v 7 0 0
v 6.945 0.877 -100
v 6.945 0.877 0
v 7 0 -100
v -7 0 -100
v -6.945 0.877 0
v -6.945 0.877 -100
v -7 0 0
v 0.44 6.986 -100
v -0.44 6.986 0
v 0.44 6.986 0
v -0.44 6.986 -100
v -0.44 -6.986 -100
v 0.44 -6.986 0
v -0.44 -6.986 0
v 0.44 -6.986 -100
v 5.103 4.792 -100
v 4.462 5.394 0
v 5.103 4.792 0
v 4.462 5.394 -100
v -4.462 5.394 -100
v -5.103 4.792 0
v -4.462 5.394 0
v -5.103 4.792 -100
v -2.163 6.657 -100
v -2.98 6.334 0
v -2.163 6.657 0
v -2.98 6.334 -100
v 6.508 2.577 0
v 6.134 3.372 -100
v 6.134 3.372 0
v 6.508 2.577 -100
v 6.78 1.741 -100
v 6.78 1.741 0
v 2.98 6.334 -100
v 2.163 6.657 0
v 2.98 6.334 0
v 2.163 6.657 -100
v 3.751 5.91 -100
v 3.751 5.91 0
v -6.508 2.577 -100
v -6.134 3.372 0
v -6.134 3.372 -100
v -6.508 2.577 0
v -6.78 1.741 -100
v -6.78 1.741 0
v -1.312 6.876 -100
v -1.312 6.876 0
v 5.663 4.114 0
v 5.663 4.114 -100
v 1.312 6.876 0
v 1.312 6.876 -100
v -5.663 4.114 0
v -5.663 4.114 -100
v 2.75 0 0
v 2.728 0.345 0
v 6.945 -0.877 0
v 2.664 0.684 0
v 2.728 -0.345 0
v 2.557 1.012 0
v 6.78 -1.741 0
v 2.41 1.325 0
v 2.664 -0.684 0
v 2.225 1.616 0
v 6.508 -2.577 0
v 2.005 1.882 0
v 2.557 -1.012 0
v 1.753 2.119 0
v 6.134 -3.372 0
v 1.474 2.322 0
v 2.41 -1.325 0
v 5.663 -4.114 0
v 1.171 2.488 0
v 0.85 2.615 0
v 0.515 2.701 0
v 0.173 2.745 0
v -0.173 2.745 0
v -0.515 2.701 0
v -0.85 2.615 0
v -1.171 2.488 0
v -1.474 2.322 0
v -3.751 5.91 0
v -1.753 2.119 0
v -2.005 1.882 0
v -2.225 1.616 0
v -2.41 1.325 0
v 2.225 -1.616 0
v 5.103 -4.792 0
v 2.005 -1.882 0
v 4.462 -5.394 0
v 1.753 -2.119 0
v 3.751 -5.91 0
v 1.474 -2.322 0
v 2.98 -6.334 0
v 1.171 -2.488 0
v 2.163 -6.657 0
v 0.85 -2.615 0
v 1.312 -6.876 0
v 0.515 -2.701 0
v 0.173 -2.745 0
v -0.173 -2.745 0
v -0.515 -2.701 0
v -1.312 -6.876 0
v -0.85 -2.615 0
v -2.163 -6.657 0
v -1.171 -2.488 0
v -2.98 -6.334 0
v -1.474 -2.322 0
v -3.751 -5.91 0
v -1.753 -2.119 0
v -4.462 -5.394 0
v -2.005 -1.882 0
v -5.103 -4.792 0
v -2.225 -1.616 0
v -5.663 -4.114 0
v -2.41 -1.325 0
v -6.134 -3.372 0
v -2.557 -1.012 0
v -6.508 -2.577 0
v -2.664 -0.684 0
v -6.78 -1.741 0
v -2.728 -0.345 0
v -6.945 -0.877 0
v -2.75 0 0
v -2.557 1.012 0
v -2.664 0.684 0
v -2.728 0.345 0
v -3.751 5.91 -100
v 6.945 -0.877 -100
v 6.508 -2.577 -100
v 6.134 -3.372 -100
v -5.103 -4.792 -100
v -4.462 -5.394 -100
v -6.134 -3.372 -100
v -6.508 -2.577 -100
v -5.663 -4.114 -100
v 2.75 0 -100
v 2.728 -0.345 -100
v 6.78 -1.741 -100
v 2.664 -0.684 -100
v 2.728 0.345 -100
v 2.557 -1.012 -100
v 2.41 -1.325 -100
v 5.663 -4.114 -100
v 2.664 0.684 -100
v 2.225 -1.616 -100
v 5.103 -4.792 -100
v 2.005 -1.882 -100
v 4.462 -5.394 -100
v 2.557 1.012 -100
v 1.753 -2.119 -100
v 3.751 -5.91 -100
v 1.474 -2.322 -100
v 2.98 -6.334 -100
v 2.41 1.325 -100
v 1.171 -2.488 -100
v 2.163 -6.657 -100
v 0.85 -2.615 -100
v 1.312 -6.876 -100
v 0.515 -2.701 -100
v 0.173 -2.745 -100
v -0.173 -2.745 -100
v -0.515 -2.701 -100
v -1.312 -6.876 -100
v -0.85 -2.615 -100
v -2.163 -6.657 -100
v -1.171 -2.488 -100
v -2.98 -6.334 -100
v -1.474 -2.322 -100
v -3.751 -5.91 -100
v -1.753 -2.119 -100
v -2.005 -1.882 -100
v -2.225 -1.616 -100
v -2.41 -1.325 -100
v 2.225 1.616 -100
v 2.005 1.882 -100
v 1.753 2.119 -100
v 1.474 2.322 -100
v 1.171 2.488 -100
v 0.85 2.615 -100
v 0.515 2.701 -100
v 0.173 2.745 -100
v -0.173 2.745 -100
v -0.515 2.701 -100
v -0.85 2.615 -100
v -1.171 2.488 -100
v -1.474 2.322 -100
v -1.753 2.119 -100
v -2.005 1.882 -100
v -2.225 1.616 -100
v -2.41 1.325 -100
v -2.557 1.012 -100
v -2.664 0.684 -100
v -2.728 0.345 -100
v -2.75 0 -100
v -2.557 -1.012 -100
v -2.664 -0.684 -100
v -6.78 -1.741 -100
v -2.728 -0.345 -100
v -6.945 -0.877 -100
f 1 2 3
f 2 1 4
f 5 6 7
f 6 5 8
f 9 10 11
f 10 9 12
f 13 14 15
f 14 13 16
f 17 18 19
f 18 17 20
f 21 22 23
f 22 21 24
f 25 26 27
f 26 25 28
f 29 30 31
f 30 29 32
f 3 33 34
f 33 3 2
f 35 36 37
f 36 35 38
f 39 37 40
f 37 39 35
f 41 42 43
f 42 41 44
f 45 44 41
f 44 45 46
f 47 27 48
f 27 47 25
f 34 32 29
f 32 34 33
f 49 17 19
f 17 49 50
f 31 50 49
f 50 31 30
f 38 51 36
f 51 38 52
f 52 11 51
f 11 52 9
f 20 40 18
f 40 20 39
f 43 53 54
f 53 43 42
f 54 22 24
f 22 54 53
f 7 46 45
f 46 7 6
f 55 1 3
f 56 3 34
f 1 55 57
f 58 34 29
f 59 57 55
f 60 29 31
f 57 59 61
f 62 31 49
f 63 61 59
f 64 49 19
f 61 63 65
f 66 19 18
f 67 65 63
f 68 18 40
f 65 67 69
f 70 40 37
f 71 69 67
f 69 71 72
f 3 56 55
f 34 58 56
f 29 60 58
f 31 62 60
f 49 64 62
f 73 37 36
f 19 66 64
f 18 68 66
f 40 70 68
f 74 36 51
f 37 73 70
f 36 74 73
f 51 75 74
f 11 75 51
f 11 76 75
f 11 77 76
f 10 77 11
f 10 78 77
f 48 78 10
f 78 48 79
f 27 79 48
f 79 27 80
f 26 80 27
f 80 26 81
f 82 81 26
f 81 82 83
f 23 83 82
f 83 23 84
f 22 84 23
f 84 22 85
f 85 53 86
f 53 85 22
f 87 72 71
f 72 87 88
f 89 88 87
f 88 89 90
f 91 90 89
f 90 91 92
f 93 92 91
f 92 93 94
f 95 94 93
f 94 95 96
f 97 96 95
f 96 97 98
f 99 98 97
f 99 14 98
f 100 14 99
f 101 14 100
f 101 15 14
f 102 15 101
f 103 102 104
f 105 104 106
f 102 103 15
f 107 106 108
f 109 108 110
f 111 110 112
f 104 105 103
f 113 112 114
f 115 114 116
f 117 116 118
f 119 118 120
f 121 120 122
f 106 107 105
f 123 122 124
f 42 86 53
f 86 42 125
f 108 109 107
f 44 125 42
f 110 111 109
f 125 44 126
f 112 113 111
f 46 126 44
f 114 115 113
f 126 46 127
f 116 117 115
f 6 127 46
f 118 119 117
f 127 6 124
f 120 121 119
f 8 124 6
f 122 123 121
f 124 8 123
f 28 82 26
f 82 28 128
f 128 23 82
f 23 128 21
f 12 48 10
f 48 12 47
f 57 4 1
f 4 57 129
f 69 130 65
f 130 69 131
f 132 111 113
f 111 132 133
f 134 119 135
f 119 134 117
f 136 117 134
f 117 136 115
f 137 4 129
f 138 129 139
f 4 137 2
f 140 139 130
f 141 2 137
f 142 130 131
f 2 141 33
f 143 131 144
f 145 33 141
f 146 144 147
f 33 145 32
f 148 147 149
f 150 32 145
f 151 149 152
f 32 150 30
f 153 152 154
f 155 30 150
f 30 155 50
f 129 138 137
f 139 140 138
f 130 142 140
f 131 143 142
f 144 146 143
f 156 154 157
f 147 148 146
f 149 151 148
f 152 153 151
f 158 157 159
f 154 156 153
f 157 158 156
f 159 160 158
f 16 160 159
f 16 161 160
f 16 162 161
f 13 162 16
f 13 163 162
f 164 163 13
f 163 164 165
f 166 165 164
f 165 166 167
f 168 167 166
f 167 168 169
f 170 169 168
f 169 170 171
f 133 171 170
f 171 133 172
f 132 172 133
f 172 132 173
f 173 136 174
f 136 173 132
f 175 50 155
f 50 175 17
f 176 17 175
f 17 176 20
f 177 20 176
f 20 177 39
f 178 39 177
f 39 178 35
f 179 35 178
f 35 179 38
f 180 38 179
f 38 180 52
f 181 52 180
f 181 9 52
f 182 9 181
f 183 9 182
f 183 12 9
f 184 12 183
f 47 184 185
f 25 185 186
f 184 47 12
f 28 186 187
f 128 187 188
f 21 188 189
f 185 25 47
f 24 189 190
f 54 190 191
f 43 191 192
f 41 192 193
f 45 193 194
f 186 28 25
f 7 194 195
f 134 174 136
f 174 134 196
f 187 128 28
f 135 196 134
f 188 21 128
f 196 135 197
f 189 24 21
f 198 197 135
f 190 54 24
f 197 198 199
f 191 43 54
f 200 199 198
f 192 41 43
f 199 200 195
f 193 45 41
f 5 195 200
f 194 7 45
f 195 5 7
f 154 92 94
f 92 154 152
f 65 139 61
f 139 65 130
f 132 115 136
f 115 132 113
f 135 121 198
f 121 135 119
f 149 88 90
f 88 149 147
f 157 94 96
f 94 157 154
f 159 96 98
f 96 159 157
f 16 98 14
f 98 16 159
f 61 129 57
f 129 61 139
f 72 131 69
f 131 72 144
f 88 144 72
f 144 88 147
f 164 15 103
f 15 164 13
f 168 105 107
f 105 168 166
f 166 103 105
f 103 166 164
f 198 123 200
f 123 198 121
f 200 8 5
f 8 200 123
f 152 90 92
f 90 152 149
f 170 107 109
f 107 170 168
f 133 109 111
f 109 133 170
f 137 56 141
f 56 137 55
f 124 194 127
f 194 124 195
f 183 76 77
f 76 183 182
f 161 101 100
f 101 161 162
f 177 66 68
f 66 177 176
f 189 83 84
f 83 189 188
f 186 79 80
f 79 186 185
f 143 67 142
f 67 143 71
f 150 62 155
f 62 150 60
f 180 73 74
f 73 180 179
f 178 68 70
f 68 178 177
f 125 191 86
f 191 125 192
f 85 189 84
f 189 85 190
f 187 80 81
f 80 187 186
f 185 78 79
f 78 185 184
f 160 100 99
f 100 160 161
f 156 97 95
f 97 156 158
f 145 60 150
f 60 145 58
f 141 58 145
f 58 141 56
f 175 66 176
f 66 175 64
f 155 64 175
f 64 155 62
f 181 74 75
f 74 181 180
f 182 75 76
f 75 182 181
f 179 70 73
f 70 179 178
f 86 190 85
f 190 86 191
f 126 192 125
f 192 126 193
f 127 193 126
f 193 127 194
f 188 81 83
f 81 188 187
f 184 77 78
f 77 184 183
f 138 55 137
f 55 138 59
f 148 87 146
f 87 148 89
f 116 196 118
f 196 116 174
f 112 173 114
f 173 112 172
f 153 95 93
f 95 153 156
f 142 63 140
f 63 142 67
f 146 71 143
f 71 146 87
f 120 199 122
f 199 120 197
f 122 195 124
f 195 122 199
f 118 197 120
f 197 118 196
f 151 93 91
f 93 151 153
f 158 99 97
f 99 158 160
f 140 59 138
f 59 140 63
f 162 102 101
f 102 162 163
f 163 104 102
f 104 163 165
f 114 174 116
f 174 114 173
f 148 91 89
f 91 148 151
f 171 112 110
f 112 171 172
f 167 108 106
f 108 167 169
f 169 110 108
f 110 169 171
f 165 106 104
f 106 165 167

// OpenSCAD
$fn = 50;


difference() {
	union() {
		translate(v = [0, 0, -100.0000000000]) {
			cylinder(h = 100, r = 7.0000000000);
		}
		cylinder(h = 0, r = 13.0000000000);
	}
	union() {
		#translate(v = [0, 0, -100]) {
			cylinder(h = 100, r = 2.7500000000);
		}
	}
}
